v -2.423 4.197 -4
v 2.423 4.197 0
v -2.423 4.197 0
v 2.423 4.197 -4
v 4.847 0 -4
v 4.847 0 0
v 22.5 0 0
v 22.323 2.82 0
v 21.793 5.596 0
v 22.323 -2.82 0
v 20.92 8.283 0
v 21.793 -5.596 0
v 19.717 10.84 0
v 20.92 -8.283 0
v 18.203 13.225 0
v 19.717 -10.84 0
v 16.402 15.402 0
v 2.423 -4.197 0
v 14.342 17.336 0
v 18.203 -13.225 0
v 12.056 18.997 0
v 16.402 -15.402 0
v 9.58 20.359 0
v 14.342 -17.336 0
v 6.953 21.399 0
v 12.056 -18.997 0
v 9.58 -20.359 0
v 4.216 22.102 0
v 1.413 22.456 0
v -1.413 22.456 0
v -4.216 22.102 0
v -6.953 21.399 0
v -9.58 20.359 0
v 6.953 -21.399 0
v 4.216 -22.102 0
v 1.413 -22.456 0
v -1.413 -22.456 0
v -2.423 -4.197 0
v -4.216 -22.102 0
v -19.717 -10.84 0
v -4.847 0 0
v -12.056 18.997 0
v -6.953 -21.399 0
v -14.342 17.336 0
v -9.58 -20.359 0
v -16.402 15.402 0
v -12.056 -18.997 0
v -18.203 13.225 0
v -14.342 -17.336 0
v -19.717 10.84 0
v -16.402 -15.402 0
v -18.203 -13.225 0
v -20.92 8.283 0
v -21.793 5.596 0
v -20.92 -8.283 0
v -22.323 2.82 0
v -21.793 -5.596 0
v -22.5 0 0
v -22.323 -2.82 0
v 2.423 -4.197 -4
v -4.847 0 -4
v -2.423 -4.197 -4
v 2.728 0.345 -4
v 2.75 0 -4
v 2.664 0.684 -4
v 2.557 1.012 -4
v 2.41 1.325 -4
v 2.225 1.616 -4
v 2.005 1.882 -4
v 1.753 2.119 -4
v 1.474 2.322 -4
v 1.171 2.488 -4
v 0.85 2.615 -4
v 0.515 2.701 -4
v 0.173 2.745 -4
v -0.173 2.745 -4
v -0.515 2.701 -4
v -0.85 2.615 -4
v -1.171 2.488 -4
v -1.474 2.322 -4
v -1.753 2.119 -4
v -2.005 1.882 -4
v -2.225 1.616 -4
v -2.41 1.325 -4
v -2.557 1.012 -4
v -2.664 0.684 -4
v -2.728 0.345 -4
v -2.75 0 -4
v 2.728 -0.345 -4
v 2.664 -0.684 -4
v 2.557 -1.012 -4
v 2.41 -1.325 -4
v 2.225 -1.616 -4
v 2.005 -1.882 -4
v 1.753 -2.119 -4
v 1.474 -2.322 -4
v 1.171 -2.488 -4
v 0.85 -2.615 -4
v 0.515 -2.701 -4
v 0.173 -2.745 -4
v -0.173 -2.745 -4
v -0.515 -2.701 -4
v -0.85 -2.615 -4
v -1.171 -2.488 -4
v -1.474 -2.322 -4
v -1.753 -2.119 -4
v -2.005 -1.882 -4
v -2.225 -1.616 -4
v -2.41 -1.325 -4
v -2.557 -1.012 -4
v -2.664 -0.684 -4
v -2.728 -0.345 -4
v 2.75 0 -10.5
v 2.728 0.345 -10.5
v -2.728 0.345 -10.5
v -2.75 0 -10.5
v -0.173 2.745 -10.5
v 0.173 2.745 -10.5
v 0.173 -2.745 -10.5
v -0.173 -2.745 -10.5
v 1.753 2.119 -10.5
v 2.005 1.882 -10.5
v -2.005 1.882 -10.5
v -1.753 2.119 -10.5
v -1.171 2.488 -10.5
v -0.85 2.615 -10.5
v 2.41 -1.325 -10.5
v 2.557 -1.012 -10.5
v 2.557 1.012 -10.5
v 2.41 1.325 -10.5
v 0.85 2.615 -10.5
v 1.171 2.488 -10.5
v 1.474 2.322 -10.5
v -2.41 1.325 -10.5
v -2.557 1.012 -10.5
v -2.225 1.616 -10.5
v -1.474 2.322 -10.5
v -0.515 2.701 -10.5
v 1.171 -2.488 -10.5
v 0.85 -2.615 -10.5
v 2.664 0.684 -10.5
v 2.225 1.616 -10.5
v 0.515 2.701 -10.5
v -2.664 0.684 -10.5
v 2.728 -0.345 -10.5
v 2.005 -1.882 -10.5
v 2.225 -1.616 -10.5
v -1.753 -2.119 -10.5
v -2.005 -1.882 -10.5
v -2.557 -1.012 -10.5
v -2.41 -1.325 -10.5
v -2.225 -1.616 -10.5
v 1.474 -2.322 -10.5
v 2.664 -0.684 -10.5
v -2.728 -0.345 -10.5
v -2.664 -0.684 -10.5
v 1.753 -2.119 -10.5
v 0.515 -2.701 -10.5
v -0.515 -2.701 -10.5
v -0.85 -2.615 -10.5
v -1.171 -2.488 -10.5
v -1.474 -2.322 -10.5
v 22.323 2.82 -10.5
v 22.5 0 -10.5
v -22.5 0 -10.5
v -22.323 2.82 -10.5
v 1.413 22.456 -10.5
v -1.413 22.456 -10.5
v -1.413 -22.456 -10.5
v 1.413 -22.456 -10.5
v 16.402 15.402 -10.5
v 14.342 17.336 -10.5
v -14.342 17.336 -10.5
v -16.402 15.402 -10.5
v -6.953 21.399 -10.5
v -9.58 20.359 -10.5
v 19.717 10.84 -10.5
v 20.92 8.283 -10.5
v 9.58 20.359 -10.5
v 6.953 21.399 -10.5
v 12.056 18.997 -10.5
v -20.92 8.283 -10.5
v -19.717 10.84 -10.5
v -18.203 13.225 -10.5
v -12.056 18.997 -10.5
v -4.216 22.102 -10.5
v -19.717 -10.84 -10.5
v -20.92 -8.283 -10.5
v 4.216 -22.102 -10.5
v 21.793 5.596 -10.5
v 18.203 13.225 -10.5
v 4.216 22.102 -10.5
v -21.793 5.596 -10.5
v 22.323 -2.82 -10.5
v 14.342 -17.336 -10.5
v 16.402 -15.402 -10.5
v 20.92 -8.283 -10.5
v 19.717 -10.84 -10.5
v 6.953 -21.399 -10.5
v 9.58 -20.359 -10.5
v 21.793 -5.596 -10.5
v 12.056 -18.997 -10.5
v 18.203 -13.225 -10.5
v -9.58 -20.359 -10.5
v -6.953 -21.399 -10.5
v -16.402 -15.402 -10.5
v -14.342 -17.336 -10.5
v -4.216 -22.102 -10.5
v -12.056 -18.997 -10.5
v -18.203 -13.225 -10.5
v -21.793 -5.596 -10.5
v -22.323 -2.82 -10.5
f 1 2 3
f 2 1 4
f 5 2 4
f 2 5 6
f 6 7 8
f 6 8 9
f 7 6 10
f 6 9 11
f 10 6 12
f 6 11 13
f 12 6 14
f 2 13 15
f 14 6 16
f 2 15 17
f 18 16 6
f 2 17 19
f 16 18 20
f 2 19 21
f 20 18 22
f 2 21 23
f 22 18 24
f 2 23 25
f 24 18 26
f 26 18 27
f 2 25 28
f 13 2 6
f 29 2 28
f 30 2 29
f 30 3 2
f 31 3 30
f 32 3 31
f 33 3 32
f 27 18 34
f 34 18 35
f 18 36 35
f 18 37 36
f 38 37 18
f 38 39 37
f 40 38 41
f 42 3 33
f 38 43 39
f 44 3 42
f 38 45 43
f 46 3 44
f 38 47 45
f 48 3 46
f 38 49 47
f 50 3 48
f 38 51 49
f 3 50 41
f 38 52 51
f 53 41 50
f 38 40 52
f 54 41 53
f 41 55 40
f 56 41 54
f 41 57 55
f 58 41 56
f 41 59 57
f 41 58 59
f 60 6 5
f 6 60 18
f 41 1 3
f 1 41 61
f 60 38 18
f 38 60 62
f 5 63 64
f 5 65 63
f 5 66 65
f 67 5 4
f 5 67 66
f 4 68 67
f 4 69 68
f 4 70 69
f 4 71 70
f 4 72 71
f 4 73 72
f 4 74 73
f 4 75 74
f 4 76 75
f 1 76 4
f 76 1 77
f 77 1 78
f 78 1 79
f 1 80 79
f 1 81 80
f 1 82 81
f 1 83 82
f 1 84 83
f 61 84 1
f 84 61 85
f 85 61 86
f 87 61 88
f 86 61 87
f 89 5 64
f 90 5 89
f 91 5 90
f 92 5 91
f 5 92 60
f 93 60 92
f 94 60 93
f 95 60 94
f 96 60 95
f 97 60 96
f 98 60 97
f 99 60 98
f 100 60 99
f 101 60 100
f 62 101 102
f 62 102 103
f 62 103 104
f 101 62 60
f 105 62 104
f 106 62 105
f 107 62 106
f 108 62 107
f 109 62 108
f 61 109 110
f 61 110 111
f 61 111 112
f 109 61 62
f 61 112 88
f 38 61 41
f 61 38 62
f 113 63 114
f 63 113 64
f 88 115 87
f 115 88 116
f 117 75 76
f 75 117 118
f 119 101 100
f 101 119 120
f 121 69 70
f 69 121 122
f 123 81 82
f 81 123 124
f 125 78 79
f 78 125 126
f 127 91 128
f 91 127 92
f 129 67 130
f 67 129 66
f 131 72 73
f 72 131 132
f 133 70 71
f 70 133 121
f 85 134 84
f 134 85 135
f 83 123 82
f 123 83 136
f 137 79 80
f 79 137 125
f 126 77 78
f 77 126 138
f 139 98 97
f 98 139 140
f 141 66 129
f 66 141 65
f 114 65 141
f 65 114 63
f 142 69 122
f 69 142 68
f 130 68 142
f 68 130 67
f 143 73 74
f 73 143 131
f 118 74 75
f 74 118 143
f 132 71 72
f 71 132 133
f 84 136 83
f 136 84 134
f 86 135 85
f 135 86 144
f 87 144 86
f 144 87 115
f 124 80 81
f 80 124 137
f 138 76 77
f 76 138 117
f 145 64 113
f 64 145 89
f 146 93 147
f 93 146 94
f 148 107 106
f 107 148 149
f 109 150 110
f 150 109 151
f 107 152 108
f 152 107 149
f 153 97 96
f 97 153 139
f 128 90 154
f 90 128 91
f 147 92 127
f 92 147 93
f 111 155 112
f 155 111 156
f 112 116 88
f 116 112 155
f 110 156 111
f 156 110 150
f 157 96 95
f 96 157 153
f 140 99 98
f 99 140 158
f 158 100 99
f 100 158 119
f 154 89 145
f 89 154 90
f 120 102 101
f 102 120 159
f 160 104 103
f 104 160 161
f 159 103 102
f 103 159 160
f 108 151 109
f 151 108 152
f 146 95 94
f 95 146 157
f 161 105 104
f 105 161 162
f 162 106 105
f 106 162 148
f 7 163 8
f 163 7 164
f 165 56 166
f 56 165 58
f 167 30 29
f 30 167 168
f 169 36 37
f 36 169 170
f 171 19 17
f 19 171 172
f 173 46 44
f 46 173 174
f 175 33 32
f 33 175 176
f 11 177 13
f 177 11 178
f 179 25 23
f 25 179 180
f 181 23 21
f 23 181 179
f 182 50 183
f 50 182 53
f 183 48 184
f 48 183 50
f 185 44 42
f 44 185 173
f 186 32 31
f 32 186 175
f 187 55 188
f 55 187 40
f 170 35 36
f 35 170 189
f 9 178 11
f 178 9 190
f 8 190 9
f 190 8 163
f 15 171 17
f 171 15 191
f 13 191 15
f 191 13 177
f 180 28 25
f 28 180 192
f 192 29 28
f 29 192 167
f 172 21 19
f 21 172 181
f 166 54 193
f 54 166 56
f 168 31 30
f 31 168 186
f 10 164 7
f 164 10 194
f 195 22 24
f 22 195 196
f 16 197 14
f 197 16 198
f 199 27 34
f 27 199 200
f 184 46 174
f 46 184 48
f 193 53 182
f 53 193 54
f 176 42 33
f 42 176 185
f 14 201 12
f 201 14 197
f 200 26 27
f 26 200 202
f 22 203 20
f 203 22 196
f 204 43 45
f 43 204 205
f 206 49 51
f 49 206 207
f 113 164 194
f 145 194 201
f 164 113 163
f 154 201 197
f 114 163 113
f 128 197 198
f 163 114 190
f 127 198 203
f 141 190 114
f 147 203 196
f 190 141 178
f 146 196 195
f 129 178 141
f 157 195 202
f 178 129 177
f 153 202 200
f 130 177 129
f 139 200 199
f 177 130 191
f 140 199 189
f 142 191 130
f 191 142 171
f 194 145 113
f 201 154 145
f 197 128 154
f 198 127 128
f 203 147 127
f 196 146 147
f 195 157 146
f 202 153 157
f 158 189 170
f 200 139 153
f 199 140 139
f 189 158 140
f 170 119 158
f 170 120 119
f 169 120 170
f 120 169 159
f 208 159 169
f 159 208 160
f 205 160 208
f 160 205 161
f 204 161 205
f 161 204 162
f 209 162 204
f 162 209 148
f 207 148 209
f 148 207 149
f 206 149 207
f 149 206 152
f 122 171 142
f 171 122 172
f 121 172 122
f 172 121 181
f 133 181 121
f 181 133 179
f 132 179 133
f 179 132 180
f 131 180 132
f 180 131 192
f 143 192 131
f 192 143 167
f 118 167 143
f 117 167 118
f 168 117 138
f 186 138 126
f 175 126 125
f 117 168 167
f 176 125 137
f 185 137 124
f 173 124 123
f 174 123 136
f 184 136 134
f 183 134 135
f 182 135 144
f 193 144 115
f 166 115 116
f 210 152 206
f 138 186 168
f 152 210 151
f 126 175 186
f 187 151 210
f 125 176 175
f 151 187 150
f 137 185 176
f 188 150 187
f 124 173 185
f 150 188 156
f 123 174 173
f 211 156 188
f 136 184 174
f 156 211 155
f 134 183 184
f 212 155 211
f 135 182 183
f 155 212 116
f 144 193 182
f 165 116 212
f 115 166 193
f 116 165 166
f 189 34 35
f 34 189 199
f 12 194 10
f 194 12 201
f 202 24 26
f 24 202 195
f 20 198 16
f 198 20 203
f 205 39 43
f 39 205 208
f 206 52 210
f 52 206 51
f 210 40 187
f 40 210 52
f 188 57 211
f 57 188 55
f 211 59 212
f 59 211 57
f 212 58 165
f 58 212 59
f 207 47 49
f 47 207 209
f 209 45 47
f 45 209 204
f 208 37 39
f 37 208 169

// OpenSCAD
$fn = 50;

difference() {
	union() {
		translate(v = [0, 0, -10.5]) {
			cylinder(h = 10.5, r = 22.5);
		}
	}
	union() {
		translate(v = [0, 0, 0]) {
			rotate(a = [0, 0, 0]) {
				difference() {
					union() {
						translate(v = [0, 0, -4]) {
							linear_extrude(height = 4) {
								polygon(points = [[4.8468, 0.0], [2.4234000000000004, 4.197451927062417], [-2.423399999999999, 4.197451927062417], [-4.8468, 5.935618106107392e-16], [-2.423400000000002, -4.197451927062416], [2.423399999999997, -4.197451927062419]]);
							}
						}
					}
					union();
				}
			}
		}
		#translate(v = [0, 0, -100.0]) {
			cylinder(h = 200, r = 2.75);
		}
	}
}
